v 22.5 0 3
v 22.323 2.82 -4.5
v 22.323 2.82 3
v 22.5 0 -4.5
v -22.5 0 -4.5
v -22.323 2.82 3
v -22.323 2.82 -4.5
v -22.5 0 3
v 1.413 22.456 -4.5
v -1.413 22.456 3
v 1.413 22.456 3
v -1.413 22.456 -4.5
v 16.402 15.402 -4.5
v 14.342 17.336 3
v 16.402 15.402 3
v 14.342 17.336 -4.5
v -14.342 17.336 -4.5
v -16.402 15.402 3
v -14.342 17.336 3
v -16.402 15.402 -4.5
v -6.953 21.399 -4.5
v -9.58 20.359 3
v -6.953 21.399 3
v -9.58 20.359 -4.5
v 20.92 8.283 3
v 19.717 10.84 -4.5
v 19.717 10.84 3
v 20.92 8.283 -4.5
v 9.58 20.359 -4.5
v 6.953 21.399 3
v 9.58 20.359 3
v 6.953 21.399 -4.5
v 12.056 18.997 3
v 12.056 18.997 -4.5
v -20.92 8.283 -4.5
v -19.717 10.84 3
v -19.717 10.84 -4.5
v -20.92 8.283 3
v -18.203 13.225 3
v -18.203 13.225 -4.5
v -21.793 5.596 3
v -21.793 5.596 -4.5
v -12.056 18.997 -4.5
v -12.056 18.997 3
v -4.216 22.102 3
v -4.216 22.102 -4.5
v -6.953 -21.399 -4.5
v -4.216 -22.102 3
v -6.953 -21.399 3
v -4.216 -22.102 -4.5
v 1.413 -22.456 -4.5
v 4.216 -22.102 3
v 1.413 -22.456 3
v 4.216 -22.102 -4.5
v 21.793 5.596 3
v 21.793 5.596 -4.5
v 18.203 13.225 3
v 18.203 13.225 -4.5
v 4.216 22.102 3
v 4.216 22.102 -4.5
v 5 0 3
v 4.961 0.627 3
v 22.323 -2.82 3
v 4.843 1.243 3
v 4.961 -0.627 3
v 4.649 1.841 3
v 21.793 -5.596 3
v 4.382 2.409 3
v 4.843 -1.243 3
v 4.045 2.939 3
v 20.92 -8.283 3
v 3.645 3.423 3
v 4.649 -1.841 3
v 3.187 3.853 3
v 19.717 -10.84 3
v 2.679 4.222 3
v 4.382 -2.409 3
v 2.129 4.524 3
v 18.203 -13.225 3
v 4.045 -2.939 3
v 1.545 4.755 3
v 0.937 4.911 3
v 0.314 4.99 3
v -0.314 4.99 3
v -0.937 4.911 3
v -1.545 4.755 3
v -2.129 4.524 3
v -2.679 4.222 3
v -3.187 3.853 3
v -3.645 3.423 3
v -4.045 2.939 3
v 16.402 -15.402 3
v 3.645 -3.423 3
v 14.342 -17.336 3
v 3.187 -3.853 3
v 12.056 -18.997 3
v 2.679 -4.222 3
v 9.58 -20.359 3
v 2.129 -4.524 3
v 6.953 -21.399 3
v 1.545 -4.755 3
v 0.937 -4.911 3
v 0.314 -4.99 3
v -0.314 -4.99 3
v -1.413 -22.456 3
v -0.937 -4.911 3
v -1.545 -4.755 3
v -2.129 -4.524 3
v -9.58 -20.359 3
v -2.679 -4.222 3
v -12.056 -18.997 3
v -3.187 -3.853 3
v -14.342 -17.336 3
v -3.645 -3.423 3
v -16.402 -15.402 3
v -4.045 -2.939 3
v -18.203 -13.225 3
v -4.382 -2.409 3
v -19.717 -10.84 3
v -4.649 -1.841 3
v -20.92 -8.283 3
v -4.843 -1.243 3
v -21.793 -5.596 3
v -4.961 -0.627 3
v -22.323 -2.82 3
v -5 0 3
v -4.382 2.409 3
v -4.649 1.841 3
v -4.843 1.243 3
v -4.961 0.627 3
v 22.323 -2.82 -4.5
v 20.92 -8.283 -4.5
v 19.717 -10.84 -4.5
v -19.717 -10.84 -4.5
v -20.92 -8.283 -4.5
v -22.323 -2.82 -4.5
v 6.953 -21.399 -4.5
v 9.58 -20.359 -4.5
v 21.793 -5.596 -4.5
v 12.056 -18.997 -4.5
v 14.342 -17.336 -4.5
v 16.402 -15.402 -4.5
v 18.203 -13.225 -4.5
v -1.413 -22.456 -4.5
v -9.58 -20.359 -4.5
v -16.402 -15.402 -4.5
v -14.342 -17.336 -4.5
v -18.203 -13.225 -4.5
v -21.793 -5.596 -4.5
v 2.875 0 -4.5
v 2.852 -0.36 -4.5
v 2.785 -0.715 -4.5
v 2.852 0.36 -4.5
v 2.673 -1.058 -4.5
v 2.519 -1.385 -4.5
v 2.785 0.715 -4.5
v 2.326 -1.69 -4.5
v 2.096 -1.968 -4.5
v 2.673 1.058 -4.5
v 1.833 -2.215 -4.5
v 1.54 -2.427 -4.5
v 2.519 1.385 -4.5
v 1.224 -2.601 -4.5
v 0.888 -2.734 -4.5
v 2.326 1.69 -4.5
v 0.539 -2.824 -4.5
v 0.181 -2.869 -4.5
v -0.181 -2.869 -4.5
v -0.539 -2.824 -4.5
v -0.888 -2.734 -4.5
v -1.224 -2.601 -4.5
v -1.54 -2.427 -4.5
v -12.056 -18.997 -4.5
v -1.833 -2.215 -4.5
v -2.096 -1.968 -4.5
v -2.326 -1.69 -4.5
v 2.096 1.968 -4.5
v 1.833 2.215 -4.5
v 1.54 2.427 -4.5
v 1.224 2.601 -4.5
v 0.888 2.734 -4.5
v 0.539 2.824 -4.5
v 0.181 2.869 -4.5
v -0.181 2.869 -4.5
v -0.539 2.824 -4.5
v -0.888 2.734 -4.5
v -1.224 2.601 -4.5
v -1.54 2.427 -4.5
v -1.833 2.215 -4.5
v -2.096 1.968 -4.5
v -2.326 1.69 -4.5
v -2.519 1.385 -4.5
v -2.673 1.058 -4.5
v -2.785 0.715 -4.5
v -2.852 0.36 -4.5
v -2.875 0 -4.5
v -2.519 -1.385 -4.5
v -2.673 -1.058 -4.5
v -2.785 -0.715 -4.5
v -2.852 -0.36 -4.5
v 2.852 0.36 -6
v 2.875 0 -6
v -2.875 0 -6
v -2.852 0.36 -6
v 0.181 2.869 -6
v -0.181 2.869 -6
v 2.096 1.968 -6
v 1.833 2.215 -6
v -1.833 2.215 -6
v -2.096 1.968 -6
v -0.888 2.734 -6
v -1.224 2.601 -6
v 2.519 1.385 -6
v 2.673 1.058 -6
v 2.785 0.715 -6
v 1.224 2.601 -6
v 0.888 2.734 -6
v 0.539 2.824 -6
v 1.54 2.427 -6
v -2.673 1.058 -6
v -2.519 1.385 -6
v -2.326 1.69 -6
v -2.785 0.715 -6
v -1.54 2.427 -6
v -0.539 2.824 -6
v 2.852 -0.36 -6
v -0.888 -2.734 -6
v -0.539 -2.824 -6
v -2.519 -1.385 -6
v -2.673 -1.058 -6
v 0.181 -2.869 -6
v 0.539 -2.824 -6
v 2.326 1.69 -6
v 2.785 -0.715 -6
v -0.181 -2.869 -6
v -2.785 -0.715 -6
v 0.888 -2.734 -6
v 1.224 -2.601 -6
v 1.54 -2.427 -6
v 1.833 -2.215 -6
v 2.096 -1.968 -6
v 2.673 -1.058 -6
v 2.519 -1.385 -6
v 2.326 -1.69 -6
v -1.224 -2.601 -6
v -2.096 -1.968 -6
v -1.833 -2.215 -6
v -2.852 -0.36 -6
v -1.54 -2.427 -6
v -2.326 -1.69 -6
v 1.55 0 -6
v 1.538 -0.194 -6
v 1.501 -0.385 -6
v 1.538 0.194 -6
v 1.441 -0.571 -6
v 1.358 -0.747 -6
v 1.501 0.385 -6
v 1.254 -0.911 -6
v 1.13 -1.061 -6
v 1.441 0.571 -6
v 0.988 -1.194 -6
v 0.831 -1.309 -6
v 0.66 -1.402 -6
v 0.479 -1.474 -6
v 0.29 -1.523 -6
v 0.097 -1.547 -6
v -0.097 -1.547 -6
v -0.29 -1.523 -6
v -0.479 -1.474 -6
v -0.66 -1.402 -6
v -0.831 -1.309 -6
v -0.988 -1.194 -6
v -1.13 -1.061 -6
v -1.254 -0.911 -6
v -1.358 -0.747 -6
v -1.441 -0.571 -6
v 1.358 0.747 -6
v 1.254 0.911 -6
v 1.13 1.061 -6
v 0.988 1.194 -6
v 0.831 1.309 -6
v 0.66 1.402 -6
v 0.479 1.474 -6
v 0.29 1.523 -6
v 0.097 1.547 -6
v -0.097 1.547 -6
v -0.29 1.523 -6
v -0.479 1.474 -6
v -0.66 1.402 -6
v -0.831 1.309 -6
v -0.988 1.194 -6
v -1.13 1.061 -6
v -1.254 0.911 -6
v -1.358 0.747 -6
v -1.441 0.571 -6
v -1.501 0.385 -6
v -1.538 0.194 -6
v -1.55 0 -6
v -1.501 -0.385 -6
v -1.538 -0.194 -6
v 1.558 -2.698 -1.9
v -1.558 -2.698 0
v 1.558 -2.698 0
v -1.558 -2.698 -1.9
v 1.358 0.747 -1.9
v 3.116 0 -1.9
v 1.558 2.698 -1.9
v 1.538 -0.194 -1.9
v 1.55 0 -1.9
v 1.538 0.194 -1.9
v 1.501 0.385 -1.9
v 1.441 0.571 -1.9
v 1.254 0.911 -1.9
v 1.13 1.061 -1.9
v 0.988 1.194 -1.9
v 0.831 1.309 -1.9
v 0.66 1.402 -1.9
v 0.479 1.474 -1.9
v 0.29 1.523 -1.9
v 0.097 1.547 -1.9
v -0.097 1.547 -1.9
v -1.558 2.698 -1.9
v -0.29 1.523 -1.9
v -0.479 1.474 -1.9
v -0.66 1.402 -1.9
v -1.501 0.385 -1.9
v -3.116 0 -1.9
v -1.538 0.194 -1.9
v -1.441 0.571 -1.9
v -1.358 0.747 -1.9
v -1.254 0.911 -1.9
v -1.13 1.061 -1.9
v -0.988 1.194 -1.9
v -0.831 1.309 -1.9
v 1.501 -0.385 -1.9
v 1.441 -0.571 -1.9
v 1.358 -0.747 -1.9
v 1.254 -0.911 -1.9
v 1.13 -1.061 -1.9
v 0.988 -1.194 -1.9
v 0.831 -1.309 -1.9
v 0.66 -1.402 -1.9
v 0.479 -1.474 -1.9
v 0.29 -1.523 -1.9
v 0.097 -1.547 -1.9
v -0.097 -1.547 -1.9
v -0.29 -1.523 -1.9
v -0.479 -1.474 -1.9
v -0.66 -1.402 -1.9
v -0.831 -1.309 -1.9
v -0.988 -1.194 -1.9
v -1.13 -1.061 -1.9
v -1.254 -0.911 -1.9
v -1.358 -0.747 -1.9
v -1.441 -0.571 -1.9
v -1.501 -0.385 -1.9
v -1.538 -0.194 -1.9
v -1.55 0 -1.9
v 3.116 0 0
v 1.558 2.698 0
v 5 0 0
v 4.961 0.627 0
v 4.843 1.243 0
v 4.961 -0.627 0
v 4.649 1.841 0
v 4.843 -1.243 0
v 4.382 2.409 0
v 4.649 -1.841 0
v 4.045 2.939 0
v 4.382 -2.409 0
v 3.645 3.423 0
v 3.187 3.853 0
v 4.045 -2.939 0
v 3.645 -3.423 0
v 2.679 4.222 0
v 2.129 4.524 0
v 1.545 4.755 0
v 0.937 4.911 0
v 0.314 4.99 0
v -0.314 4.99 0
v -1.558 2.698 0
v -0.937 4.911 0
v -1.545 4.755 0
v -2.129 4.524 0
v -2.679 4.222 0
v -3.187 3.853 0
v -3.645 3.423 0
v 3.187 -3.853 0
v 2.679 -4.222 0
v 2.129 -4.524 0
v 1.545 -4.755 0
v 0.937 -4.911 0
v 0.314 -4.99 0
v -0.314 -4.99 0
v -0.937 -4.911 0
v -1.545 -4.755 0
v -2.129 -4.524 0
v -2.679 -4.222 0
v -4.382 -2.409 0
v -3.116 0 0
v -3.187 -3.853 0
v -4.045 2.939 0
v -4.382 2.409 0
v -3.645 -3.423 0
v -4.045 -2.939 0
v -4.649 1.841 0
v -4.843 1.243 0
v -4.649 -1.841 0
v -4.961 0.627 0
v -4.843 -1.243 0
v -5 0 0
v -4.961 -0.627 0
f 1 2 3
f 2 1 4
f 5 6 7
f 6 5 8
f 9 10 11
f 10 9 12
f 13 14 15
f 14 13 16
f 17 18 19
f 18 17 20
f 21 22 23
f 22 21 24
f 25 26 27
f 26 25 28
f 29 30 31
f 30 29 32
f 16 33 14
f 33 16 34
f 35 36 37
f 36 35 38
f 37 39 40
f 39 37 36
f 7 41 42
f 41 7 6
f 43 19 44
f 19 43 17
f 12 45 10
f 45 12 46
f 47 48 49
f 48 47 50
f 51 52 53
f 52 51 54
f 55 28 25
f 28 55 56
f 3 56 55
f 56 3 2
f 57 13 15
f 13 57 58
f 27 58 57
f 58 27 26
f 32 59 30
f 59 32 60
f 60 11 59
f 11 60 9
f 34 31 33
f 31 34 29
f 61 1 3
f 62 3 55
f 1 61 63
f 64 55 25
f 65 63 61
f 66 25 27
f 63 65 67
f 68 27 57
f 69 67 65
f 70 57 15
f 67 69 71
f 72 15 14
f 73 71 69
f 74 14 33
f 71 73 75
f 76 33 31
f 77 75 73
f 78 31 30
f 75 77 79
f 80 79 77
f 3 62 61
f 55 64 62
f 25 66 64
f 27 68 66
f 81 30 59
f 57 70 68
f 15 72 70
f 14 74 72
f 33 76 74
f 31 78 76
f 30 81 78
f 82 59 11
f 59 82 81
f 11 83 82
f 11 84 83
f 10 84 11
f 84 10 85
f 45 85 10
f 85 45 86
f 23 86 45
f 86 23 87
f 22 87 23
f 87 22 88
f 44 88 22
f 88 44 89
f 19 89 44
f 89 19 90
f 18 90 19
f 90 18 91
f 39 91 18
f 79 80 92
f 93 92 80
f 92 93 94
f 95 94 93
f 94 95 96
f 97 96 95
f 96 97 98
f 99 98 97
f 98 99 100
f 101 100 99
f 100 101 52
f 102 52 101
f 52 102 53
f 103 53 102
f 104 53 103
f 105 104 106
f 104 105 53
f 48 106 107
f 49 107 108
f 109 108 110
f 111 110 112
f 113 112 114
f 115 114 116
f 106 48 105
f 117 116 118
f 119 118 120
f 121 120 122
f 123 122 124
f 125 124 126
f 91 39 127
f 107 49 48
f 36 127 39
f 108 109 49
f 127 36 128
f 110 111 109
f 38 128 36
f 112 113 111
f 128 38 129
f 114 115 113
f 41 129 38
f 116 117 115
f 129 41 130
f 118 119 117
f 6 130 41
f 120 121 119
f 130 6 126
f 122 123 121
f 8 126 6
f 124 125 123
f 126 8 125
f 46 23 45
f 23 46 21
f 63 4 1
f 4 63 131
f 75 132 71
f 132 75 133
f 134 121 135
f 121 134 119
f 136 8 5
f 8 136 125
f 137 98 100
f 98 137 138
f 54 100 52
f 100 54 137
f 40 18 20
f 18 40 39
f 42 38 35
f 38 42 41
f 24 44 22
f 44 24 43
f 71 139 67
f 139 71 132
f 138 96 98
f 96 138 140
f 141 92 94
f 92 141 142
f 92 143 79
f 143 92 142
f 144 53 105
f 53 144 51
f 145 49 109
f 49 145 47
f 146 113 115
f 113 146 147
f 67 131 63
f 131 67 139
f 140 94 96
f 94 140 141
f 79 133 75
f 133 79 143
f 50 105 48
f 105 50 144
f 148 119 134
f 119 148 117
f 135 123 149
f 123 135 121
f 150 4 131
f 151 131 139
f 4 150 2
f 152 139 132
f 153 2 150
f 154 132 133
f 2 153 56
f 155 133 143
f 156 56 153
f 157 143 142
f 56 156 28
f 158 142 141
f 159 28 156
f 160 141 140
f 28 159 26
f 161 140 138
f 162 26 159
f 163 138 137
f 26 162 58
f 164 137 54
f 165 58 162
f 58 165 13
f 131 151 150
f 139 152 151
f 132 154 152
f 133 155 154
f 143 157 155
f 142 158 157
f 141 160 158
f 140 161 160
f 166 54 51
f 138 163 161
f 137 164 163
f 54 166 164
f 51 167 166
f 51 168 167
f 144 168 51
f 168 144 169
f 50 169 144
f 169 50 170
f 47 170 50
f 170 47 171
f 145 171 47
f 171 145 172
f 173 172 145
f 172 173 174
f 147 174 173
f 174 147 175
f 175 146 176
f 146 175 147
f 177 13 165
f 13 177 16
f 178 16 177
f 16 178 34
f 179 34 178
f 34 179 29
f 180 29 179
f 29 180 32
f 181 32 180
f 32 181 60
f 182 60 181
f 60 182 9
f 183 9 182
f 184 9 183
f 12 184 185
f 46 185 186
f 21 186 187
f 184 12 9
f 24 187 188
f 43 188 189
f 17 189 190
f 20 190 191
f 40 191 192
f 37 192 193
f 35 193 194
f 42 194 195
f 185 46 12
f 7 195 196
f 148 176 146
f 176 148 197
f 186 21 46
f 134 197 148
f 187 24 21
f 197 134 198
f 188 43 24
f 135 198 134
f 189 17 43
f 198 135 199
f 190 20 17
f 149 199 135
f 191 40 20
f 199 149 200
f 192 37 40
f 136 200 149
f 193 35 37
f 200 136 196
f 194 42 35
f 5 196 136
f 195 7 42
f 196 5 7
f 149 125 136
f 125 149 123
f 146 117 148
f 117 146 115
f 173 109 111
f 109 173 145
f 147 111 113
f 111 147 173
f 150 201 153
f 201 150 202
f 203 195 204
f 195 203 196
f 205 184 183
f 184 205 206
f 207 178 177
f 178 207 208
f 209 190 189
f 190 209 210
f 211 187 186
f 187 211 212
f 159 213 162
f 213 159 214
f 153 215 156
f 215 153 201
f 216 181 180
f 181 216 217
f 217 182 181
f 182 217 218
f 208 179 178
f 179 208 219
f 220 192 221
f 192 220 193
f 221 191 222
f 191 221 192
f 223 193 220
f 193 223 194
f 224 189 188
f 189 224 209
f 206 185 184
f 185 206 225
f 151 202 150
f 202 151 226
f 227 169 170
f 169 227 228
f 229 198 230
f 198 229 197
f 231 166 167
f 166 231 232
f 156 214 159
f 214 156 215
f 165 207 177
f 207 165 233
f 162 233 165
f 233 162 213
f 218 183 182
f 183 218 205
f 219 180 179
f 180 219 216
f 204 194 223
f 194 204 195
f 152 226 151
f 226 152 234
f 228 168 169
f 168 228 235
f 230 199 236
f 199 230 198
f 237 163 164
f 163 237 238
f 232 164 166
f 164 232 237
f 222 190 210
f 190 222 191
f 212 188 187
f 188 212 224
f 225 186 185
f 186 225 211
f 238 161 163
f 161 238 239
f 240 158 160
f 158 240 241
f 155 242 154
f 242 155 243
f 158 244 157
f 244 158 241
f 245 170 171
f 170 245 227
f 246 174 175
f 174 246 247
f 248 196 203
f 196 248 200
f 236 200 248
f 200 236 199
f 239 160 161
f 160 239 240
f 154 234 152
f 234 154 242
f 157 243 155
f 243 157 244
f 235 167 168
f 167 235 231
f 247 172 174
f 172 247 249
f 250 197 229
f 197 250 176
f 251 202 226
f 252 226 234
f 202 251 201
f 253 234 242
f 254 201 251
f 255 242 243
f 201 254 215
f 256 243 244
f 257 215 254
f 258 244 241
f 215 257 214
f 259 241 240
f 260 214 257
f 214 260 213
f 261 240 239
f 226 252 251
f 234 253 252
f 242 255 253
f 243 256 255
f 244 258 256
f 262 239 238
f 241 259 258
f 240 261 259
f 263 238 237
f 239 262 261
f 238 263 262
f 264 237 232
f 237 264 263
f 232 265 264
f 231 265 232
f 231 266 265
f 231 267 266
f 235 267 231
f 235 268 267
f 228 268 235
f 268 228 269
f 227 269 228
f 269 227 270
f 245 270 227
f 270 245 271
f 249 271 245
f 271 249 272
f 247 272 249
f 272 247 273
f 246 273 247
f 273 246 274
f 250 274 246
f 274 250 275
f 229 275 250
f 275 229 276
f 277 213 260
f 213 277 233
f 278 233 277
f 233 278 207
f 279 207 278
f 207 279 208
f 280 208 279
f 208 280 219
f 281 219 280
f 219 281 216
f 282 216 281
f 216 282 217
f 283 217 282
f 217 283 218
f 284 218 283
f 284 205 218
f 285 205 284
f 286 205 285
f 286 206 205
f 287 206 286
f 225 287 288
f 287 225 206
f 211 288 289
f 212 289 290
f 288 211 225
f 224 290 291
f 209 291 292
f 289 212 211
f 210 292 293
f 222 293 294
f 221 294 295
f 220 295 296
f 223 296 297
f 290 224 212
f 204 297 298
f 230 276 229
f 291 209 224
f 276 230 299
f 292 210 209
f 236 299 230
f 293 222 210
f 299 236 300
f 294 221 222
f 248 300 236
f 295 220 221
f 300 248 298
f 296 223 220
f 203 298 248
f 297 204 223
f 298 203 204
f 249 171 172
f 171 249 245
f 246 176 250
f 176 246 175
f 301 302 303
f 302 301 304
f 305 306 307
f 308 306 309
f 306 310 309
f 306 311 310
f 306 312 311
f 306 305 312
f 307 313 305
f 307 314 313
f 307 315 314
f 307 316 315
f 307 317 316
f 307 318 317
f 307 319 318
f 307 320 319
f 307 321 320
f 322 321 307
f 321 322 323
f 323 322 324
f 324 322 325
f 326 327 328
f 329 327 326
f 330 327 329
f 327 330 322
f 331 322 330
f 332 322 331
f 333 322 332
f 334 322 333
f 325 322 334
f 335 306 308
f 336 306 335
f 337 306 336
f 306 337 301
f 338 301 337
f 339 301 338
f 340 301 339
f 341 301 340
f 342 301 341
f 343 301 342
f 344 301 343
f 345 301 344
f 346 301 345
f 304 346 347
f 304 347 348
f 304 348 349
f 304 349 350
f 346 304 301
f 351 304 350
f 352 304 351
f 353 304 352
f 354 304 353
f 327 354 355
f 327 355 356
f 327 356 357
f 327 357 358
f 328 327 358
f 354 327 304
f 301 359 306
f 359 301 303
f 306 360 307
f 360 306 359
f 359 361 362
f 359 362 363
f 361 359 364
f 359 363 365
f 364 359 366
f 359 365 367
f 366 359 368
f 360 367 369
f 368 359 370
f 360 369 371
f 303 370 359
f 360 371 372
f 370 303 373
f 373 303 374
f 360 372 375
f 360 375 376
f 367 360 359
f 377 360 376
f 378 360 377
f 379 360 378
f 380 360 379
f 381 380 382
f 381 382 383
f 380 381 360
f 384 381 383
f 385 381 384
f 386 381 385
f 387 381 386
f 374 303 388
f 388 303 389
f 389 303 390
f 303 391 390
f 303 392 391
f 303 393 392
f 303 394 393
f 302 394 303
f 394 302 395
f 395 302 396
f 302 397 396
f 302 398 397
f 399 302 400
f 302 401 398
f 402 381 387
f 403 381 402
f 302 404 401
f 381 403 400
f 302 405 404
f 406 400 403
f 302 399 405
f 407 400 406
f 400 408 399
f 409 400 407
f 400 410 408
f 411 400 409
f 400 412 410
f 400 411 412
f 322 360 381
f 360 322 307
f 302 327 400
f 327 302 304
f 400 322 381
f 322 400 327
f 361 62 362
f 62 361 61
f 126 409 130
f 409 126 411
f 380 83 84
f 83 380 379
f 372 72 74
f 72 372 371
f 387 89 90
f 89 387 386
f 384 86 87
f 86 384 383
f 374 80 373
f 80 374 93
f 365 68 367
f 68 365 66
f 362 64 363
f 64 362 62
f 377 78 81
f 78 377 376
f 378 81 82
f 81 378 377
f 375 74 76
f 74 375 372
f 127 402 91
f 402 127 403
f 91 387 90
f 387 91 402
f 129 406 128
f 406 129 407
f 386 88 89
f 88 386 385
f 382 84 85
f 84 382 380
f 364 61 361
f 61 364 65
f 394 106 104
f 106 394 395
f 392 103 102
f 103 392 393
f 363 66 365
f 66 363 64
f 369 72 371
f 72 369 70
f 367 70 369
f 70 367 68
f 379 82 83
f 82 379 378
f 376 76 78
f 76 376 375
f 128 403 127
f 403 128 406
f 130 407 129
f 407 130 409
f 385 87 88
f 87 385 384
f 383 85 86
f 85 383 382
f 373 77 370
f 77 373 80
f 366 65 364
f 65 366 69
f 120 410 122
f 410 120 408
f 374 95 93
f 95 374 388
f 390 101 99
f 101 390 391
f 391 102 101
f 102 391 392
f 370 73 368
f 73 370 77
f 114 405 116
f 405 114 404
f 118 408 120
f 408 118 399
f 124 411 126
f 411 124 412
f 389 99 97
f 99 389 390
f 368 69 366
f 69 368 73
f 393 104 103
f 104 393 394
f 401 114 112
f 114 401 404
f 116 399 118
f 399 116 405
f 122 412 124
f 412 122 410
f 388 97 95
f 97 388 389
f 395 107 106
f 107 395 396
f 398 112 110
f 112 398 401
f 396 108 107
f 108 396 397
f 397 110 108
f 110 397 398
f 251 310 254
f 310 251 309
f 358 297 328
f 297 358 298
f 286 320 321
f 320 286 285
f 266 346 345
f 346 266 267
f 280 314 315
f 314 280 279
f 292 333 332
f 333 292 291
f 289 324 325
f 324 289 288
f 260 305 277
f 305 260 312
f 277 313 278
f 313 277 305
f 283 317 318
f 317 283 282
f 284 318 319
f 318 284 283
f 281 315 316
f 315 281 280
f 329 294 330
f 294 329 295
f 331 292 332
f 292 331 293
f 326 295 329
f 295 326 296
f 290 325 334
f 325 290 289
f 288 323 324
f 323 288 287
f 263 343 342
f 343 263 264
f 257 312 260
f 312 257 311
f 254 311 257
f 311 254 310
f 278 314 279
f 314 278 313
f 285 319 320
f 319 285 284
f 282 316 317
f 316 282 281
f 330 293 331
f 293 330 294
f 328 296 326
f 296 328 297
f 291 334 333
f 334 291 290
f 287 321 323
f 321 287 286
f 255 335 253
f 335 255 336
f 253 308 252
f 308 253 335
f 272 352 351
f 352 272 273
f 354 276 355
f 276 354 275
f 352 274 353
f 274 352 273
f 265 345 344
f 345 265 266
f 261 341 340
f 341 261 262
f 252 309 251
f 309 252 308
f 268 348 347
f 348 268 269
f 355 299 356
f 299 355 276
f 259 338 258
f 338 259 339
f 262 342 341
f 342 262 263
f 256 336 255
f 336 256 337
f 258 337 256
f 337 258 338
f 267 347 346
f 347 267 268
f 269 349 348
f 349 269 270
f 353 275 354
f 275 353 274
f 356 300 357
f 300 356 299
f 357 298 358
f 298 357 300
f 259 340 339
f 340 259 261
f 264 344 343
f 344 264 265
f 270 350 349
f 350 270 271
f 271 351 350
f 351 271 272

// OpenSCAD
$fn = 50;

difference() {
	union() {
		translate(v = [0, 0, -4.5]) {
			cylinder(h = 7.5, r = 22.5);
		}
		#translate(v = [0, 0, -6.0]) {
			cylinder(h = 6, r = 2.875);
		}
	}
	union() {
		translate(v = [0, 0, 0]) {
			rotate(a = [0, 0, 0]) {
				difference() {
					union() {
						translate(v = [0, 0, -1.9]) {
							linear_extrude(height = 1.9) {
								polygon(points = [[3.1158, 0.0], [1.5579000000000005, 2.698361953111554], [-1.5578999999999994, 2.6983619531115544], [-3.1158, 3.815754496783323e-16], [-1.5579000000000014, -2.6983619531115535], [1.557899999999998, -2.6983619531115552]]);
							}
						}
					}
					union();
				}
			}
		}
		#cylinder(h = 3, r = 5.0);
		#translate(v = [0, 0, -100.0]) {
			cylinder(h = 200, r = 1.55);
		}
	}
}
